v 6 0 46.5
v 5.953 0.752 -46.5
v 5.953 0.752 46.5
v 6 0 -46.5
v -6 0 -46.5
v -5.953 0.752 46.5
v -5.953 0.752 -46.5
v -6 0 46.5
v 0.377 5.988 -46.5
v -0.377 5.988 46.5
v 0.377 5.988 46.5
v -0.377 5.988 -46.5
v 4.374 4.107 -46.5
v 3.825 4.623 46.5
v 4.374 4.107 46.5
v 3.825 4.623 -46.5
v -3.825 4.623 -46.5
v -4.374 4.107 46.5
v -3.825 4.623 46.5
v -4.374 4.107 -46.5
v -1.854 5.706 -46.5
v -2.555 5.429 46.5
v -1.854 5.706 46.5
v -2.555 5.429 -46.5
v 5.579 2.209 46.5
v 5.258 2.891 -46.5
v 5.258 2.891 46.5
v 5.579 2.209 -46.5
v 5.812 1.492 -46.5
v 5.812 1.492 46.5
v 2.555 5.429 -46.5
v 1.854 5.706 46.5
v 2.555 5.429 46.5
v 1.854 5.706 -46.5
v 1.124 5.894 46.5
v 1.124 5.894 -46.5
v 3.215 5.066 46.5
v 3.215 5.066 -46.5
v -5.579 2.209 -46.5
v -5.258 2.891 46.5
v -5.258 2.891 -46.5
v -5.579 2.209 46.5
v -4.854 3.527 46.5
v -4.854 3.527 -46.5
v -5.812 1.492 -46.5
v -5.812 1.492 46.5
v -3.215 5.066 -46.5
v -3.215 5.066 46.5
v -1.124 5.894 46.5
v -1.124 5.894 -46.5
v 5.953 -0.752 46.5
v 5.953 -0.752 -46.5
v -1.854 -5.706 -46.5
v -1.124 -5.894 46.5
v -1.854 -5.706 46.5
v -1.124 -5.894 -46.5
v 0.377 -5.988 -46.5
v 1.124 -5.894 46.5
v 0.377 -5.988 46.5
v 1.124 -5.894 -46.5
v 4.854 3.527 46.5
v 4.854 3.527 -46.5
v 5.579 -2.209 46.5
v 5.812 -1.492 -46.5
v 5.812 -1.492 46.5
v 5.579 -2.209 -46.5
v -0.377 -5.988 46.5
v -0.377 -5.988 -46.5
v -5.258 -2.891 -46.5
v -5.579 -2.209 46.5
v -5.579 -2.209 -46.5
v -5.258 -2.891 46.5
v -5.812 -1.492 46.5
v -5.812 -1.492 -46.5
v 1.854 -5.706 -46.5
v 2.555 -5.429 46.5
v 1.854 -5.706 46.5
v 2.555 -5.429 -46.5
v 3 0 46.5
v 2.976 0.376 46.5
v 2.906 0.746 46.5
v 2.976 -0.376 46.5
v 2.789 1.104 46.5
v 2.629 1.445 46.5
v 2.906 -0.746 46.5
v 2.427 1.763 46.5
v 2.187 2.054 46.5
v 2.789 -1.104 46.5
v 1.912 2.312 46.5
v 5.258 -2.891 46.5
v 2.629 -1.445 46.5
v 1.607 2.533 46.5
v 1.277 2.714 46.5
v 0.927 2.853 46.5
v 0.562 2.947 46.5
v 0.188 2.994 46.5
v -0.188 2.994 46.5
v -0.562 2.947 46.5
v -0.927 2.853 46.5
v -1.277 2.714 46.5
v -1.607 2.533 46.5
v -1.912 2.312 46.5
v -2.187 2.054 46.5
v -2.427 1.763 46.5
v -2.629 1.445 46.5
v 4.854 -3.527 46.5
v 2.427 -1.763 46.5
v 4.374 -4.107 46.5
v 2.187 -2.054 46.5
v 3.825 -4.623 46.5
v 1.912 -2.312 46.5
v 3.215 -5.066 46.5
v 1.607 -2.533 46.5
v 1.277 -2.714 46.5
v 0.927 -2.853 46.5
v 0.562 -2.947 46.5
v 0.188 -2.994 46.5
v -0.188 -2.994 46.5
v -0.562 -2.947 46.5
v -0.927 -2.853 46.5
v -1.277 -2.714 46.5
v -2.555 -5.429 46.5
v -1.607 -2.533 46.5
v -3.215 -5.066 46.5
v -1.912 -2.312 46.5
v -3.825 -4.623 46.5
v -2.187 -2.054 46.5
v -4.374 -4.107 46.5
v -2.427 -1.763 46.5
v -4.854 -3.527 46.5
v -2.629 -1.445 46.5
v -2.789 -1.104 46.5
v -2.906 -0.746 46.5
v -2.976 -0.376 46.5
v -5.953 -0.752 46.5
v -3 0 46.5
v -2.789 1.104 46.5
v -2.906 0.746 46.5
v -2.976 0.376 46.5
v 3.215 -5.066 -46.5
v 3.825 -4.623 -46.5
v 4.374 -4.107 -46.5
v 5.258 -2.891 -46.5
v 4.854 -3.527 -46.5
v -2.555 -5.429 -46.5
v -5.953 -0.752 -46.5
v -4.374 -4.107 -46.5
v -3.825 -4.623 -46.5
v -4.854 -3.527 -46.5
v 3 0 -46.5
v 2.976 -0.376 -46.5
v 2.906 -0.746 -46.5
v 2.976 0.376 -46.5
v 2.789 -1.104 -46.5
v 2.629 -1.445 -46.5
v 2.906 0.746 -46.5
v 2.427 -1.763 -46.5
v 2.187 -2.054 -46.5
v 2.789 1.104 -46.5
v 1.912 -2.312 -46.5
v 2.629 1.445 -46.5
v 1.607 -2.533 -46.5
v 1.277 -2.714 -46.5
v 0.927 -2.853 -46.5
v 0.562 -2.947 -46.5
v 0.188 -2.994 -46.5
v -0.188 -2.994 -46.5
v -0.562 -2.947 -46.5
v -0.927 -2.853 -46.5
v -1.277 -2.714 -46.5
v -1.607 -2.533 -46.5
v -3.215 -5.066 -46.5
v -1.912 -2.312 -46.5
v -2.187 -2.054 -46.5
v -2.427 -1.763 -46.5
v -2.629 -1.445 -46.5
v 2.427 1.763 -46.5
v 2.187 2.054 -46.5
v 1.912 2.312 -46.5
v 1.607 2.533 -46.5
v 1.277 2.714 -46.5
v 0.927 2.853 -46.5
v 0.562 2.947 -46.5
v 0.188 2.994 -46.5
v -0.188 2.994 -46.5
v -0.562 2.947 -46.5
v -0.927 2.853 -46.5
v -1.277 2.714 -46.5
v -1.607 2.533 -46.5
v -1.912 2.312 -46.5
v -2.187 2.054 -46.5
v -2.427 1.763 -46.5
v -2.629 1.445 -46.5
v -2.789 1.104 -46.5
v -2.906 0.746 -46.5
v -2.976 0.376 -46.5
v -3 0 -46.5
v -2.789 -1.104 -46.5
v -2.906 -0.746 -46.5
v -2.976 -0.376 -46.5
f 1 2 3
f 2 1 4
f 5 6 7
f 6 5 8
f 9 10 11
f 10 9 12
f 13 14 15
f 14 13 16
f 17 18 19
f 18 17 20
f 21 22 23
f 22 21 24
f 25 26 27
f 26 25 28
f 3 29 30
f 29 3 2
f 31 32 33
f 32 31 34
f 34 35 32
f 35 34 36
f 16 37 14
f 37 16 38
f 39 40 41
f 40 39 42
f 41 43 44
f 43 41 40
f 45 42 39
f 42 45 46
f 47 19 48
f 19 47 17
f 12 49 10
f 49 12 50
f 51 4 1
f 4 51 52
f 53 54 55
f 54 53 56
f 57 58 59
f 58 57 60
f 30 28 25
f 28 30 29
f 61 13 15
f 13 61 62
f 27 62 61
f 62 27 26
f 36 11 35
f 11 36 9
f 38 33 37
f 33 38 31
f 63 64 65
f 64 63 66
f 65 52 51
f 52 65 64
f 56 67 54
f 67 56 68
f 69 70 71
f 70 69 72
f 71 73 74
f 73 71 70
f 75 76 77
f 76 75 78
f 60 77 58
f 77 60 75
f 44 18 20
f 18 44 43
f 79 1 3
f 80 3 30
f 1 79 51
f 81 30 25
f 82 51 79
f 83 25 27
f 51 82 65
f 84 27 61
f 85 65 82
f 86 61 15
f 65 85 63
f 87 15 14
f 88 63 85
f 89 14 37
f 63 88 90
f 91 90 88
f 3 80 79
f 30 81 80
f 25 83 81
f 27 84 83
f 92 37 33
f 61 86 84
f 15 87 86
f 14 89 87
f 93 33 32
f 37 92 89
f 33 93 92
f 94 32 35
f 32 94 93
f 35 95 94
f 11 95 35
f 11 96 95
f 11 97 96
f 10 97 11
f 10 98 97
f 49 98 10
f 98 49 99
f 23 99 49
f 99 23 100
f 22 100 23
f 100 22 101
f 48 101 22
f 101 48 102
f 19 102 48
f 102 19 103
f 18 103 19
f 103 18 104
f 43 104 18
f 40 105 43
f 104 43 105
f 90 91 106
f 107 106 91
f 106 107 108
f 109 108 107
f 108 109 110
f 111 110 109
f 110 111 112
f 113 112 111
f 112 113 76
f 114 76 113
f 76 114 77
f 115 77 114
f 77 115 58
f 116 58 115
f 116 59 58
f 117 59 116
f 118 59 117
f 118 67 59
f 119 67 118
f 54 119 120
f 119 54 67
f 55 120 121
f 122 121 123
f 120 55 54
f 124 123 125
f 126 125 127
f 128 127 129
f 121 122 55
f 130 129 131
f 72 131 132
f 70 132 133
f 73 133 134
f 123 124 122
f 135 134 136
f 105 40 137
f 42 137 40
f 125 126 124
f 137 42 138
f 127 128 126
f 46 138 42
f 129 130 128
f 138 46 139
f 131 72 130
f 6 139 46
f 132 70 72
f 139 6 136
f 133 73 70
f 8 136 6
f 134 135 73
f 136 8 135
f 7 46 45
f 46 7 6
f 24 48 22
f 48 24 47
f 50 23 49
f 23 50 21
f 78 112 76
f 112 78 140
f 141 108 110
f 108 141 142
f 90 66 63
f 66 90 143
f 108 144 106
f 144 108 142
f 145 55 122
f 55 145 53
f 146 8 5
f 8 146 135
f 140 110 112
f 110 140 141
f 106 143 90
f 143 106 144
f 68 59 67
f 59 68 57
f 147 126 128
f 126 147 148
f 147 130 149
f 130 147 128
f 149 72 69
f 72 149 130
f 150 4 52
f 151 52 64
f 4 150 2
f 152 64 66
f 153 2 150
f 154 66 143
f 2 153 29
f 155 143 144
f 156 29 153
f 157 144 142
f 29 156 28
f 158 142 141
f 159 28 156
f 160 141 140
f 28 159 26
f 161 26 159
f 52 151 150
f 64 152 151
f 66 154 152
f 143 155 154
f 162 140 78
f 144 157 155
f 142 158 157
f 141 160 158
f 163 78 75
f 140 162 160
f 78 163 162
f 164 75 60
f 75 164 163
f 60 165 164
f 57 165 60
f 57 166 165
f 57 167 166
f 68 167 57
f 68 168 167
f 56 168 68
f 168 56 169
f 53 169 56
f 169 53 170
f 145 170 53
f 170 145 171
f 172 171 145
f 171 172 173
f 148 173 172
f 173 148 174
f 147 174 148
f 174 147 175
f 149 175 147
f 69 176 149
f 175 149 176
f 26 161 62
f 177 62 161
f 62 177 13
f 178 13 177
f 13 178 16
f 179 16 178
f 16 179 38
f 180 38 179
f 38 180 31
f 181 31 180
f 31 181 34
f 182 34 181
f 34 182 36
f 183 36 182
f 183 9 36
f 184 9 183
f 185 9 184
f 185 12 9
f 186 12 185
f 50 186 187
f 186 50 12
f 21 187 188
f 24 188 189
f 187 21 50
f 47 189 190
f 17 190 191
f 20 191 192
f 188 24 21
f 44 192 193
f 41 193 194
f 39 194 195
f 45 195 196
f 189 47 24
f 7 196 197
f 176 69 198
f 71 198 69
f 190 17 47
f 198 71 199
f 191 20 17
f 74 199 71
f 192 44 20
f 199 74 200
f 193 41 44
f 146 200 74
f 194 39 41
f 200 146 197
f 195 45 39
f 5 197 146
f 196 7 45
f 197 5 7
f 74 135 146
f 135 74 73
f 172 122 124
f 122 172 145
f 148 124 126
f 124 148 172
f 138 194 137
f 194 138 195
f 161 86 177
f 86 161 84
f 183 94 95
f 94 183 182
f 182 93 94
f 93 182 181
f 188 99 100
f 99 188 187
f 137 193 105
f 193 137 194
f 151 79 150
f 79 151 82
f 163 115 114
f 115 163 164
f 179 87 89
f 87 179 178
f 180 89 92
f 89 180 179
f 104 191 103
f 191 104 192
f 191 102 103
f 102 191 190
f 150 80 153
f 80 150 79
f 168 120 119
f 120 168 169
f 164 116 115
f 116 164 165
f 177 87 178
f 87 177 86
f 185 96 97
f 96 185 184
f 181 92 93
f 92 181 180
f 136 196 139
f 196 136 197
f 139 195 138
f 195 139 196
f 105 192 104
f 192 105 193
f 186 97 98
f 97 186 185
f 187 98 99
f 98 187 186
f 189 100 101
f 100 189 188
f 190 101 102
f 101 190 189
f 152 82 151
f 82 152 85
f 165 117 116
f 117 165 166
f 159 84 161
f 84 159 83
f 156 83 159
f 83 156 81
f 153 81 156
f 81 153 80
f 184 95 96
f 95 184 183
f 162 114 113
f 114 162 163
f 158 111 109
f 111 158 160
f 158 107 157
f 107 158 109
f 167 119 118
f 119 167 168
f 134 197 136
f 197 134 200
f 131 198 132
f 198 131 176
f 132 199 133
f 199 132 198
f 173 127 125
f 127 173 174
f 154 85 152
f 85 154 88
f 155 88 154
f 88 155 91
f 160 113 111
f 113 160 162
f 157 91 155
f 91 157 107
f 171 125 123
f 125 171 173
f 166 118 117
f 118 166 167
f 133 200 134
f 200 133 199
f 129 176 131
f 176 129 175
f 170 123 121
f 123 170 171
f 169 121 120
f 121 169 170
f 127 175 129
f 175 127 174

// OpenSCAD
$fn = 50;


difference() {
	union() {
		translate(v = [0, 0, -46.5000000000]) {
			cylinder(h = 93, r = 6.0000000000);
		}
	}
	union() {
		translate(v = [0, 0, -100.0000000000]) {
			cylinder(h = 200, r = 3.0000000000);
		}
	}
}
